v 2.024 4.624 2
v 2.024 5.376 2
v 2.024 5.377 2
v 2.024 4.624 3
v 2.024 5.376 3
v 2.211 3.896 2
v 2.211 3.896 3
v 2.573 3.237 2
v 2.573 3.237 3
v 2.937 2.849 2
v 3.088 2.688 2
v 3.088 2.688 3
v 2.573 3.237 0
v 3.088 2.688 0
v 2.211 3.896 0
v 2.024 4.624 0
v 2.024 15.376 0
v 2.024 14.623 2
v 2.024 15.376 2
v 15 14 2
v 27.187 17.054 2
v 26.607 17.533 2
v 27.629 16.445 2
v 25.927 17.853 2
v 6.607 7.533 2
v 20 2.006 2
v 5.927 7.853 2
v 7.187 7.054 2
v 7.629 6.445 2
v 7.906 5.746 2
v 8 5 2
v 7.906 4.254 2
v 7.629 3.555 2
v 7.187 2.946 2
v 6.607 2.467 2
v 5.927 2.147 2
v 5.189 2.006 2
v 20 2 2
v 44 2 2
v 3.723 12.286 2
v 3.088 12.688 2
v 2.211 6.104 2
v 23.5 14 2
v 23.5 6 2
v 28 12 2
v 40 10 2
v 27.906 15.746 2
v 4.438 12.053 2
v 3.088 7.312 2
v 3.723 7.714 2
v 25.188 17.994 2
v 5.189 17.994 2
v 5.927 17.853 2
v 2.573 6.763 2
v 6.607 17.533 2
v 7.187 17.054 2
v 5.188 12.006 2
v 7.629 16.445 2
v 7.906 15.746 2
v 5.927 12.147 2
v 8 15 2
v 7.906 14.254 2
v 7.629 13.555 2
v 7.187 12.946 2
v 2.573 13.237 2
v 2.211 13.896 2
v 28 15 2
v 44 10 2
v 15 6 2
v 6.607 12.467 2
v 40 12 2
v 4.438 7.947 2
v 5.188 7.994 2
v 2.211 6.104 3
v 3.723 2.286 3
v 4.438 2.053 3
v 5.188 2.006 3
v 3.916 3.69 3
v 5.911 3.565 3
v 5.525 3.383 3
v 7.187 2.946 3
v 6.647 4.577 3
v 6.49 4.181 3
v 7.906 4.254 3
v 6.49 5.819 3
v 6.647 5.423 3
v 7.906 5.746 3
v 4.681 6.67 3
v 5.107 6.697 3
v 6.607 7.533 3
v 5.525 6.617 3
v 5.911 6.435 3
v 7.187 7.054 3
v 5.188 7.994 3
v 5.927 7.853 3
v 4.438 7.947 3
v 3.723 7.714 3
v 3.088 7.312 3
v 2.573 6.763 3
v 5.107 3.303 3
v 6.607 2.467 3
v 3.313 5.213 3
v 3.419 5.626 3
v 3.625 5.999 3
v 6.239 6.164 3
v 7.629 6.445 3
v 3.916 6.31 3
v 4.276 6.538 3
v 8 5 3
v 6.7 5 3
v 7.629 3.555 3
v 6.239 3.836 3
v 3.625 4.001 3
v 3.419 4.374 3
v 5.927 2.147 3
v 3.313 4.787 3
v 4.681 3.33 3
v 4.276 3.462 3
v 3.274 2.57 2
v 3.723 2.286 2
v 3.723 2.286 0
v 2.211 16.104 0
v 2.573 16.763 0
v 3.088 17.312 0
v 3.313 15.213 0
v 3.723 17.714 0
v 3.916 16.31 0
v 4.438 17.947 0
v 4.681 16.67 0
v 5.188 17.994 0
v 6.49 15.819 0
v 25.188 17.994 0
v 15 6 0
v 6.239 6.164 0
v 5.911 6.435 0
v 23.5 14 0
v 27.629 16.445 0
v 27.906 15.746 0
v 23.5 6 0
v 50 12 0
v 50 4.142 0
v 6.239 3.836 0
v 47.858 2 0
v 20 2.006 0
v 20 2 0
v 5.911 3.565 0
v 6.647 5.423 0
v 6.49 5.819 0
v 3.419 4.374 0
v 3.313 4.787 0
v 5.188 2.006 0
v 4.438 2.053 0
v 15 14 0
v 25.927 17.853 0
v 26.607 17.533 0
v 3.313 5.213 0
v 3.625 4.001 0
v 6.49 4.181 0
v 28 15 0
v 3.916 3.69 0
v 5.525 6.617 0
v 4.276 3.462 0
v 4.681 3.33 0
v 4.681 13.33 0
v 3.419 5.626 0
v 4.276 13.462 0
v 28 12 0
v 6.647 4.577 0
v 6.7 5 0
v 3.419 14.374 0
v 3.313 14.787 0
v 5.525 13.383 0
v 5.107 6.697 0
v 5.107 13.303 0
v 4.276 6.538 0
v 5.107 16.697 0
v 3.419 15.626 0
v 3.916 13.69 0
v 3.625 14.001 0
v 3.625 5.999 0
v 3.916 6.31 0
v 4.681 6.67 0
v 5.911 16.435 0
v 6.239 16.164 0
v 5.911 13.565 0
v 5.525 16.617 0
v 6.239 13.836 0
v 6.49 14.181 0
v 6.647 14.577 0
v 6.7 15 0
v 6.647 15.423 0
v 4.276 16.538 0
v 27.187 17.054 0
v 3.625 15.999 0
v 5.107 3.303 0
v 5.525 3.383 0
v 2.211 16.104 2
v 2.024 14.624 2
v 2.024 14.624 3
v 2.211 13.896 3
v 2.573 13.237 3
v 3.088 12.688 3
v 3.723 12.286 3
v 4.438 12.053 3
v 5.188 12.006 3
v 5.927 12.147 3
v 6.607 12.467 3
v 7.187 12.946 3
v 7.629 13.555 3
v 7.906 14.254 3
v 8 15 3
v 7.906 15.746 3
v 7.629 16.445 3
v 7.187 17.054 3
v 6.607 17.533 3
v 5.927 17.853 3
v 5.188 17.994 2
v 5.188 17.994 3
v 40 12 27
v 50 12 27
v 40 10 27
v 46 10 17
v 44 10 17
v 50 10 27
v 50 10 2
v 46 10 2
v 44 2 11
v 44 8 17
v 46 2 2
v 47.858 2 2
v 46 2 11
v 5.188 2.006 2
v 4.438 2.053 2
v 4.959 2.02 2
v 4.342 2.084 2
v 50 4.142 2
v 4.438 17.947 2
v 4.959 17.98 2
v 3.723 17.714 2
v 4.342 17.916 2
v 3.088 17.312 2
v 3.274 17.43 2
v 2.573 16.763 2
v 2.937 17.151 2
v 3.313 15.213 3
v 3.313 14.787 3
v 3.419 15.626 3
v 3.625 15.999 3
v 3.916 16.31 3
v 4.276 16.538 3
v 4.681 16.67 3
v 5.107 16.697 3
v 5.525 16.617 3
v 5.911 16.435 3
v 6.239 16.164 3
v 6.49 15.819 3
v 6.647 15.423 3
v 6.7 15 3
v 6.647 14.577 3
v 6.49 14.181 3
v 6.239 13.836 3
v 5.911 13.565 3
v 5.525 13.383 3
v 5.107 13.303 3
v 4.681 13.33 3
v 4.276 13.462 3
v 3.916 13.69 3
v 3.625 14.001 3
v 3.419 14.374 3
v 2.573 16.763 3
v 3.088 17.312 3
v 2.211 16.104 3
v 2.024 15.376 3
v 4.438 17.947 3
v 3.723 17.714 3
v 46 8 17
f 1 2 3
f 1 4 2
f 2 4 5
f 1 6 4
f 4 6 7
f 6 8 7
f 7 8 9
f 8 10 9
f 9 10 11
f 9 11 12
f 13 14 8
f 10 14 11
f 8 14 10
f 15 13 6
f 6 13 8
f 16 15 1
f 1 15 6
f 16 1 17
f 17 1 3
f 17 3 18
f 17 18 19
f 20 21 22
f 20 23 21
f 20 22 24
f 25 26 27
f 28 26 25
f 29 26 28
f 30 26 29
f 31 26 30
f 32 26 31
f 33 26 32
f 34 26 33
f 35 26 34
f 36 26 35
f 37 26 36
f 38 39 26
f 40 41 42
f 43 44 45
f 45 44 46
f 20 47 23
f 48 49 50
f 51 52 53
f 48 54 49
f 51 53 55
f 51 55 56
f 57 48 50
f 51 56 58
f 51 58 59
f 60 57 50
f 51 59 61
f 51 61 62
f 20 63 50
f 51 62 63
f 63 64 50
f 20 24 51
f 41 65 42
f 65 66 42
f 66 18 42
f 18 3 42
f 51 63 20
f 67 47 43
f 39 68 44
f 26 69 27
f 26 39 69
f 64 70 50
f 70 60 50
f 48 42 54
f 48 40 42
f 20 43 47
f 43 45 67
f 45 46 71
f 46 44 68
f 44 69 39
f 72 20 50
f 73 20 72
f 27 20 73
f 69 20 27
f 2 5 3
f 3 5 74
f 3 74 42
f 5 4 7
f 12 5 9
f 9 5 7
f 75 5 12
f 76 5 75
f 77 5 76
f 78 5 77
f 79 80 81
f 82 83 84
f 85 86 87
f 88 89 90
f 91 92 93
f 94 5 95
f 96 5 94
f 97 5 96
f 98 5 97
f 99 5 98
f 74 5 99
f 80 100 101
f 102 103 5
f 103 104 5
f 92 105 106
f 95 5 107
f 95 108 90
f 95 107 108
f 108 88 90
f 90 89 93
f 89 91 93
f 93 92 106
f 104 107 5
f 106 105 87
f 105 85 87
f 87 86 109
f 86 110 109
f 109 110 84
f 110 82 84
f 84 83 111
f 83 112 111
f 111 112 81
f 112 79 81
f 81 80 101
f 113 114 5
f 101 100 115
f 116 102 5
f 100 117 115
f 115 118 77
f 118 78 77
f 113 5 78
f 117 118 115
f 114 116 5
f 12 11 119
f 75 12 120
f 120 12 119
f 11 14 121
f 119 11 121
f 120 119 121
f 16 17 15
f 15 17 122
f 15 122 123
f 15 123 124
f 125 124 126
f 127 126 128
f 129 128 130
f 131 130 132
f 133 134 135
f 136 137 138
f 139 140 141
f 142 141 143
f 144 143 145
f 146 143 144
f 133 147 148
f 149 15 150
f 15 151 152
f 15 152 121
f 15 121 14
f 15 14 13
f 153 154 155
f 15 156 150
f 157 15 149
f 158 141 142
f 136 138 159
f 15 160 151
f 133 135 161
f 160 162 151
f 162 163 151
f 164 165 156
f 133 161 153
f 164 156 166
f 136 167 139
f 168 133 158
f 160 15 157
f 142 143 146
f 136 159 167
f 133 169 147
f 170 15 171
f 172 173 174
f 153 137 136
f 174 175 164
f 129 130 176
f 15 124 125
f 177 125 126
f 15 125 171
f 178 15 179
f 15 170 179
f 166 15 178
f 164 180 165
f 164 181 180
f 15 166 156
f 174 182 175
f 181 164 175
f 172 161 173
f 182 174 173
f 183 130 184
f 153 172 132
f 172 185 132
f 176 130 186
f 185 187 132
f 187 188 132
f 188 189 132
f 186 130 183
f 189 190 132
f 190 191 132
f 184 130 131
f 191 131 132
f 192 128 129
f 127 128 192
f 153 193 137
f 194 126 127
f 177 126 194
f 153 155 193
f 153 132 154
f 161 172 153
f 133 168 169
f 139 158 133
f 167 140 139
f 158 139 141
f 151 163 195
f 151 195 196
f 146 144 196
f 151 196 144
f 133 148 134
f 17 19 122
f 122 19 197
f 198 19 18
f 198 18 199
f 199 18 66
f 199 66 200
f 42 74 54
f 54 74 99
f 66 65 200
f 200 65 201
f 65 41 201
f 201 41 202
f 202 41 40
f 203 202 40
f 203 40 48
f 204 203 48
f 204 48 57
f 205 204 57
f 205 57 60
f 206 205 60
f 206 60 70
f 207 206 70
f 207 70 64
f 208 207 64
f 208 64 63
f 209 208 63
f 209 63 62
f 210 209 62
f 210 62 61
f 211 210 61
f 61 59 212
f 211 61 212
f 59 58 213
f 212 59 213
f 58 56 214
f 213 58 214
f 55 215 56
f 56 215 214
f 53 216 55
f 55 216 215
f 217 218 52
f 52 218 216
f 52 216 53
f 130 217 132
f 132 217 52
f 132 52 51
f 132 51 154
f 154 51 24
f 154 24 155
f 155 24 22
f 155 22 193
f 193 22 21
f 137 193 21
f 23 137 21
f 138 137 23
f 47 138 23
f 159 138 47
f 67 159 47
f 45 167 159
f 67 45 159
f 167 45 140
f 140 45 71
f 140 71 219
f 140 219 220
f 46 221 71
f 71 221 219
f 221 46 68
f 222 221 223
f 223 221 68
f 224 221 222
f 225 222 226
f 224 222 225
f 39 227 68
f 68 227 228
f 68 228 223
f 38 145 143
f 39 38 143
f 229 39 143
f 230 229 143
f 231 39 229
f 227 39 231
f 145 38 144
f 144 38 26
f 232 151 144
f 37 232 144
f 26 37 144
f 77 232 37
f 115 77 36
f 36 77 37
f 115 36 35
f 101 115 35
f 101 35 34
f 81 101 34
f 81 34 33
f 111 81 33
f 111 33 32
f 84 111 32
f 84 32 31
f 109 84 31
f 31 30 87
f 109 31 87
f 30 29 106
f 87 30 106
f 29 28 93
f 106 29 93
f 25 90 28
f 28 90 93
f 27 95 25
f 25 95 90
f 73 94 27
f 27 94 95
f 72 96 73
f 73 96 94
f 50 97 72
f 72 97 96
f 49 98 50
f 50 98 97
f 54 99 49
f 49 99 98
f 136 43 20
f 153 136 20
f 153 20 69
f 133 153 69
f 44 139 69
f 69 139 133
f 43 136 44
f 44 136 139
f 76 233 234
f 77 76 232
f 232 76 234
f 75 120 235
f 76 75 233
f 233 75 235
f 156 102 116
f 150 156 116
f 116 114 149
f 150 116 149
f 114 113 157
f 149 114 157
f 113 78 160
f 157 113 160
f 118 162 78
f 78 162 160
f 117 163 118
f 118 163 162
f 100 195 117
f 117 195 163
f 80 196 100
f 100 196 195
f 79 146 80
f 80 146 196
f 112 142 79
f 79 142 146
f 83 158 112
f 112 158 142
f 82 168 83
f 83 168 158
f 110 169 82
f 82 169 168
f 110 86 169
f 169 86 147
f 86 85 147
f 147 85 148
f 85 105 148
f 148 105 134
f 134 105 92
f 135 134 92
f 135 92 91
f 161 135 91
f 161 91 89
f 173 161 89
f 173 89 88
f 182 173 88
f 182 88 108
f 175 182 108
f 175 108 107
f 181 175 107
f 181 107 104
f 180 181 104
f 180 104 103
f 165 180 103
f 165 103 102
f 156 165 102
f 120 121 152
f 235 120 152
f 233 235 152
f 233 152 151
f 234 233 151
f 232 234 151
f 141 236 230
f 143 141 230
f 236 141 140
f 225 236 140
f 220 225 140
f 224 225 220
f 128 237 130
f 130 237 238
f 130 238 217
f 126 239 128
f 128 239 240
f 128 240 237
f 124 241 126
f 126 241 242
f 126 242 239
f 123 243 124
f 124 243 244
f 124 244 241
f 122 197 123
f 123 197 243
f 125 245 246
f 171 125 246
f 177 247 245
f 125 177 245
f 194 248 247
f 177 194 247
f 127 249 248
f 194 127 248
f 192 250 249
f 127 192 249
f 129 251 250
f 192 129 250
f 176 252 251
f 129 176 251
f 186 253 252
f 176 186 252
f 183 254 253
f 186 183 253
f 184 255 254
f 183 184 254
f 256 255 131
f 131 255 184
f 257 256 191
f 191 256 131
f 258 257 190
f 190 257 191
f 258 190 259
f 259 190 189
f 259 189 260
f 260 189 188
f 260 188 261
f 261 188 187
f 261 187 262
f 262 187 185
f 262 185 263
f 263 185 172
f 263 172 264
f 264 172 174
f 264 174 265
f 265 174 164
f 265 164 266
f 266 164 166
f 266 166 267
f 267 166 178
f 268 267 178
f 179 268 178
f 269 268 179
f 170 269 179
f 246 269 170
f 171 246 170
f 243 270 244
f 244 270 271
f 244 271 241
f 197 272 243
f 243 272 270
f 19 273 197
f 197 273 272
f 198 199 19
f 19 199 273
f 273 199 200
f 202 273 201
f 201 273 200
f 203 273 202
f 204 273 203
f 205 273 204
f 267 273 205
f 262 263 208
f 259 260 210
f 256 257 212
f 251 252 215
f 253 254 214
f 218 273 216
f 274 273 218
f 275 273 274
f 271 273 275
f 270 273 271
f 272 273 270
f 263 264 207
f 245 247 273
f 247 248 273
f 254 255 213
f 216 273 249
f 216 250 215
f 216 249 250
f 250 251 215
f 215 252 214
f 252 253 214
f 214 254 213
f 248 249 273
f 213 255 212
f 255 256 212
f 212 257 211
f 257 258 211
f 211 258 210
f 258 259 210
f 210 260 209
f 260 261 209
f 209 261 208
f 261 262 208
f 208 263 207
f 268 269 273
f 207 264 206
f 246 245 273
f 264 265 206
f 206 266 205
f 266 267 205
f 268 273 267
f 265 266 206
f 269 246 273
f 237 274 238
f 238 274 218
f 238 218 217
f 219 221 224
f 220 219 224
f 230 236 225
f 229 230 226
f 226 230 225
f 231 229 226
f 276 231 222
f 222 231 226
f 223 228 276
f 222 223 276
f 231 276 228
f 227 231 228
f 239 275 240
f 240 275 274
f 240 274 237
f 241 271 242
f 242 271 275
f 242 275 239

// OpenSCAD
// X-axis homing target for dc42's modulated IR

$fn=25;
thickness = 2;


difference() {
	union() {
		translate([15,10,0]) roundedRect([23,13,thickness], 3);
		translate([20,2,0]) cube([30,10,thickness]);
		translate([40,12-thickness,thickness]) cube([10,thickness,25]);
       	translate([44,2,thickness]) cube([thickness,10-thickness,15]);
		translate([5,5,thickness]) cylinder(h=1,r=3);
		translate([5,15,thickness]) cylinder(h=1,r=3);
	}
	translate([5,5,0]) cylinder(h=thickness+1,r=1.7);
	translate([5,15,0]) cylinder(h=thickness+1,r=1.7);
	translate([15,6,0]) cube([8.5,8,thickness]);
	translate([44,0,9]) rotate([45,0,0]) cube([thickness,12,12]);
	translate([53,-7,0]) rotate([0,0,45]) cube([10,10,thickness]);
	
}

module roundedRect(size, radius)
{
	x = size[0];
	y = size[1];
	z = size[2];

	linear_extrude(height=z)
	hull()
	{
		// place 4 circles in the corners, with the given radius
		translate([(-x/2)+(radius/2), (-y/2)+(radius/2), 0])
		circle(r=radius);
	
		translate([(x/2)-(radius/2), (-y/2)+(radius/2), 0])
		circle(r=radius);
	
		translate([(-x/2)+(radius/2), (y/2)-(radius/2), 0])
		circle(r=radius);
	
		translate([(x/2)-(radius/2), (y/2)-(radius/2), 0])
		circle(r=radius);
	}
}
